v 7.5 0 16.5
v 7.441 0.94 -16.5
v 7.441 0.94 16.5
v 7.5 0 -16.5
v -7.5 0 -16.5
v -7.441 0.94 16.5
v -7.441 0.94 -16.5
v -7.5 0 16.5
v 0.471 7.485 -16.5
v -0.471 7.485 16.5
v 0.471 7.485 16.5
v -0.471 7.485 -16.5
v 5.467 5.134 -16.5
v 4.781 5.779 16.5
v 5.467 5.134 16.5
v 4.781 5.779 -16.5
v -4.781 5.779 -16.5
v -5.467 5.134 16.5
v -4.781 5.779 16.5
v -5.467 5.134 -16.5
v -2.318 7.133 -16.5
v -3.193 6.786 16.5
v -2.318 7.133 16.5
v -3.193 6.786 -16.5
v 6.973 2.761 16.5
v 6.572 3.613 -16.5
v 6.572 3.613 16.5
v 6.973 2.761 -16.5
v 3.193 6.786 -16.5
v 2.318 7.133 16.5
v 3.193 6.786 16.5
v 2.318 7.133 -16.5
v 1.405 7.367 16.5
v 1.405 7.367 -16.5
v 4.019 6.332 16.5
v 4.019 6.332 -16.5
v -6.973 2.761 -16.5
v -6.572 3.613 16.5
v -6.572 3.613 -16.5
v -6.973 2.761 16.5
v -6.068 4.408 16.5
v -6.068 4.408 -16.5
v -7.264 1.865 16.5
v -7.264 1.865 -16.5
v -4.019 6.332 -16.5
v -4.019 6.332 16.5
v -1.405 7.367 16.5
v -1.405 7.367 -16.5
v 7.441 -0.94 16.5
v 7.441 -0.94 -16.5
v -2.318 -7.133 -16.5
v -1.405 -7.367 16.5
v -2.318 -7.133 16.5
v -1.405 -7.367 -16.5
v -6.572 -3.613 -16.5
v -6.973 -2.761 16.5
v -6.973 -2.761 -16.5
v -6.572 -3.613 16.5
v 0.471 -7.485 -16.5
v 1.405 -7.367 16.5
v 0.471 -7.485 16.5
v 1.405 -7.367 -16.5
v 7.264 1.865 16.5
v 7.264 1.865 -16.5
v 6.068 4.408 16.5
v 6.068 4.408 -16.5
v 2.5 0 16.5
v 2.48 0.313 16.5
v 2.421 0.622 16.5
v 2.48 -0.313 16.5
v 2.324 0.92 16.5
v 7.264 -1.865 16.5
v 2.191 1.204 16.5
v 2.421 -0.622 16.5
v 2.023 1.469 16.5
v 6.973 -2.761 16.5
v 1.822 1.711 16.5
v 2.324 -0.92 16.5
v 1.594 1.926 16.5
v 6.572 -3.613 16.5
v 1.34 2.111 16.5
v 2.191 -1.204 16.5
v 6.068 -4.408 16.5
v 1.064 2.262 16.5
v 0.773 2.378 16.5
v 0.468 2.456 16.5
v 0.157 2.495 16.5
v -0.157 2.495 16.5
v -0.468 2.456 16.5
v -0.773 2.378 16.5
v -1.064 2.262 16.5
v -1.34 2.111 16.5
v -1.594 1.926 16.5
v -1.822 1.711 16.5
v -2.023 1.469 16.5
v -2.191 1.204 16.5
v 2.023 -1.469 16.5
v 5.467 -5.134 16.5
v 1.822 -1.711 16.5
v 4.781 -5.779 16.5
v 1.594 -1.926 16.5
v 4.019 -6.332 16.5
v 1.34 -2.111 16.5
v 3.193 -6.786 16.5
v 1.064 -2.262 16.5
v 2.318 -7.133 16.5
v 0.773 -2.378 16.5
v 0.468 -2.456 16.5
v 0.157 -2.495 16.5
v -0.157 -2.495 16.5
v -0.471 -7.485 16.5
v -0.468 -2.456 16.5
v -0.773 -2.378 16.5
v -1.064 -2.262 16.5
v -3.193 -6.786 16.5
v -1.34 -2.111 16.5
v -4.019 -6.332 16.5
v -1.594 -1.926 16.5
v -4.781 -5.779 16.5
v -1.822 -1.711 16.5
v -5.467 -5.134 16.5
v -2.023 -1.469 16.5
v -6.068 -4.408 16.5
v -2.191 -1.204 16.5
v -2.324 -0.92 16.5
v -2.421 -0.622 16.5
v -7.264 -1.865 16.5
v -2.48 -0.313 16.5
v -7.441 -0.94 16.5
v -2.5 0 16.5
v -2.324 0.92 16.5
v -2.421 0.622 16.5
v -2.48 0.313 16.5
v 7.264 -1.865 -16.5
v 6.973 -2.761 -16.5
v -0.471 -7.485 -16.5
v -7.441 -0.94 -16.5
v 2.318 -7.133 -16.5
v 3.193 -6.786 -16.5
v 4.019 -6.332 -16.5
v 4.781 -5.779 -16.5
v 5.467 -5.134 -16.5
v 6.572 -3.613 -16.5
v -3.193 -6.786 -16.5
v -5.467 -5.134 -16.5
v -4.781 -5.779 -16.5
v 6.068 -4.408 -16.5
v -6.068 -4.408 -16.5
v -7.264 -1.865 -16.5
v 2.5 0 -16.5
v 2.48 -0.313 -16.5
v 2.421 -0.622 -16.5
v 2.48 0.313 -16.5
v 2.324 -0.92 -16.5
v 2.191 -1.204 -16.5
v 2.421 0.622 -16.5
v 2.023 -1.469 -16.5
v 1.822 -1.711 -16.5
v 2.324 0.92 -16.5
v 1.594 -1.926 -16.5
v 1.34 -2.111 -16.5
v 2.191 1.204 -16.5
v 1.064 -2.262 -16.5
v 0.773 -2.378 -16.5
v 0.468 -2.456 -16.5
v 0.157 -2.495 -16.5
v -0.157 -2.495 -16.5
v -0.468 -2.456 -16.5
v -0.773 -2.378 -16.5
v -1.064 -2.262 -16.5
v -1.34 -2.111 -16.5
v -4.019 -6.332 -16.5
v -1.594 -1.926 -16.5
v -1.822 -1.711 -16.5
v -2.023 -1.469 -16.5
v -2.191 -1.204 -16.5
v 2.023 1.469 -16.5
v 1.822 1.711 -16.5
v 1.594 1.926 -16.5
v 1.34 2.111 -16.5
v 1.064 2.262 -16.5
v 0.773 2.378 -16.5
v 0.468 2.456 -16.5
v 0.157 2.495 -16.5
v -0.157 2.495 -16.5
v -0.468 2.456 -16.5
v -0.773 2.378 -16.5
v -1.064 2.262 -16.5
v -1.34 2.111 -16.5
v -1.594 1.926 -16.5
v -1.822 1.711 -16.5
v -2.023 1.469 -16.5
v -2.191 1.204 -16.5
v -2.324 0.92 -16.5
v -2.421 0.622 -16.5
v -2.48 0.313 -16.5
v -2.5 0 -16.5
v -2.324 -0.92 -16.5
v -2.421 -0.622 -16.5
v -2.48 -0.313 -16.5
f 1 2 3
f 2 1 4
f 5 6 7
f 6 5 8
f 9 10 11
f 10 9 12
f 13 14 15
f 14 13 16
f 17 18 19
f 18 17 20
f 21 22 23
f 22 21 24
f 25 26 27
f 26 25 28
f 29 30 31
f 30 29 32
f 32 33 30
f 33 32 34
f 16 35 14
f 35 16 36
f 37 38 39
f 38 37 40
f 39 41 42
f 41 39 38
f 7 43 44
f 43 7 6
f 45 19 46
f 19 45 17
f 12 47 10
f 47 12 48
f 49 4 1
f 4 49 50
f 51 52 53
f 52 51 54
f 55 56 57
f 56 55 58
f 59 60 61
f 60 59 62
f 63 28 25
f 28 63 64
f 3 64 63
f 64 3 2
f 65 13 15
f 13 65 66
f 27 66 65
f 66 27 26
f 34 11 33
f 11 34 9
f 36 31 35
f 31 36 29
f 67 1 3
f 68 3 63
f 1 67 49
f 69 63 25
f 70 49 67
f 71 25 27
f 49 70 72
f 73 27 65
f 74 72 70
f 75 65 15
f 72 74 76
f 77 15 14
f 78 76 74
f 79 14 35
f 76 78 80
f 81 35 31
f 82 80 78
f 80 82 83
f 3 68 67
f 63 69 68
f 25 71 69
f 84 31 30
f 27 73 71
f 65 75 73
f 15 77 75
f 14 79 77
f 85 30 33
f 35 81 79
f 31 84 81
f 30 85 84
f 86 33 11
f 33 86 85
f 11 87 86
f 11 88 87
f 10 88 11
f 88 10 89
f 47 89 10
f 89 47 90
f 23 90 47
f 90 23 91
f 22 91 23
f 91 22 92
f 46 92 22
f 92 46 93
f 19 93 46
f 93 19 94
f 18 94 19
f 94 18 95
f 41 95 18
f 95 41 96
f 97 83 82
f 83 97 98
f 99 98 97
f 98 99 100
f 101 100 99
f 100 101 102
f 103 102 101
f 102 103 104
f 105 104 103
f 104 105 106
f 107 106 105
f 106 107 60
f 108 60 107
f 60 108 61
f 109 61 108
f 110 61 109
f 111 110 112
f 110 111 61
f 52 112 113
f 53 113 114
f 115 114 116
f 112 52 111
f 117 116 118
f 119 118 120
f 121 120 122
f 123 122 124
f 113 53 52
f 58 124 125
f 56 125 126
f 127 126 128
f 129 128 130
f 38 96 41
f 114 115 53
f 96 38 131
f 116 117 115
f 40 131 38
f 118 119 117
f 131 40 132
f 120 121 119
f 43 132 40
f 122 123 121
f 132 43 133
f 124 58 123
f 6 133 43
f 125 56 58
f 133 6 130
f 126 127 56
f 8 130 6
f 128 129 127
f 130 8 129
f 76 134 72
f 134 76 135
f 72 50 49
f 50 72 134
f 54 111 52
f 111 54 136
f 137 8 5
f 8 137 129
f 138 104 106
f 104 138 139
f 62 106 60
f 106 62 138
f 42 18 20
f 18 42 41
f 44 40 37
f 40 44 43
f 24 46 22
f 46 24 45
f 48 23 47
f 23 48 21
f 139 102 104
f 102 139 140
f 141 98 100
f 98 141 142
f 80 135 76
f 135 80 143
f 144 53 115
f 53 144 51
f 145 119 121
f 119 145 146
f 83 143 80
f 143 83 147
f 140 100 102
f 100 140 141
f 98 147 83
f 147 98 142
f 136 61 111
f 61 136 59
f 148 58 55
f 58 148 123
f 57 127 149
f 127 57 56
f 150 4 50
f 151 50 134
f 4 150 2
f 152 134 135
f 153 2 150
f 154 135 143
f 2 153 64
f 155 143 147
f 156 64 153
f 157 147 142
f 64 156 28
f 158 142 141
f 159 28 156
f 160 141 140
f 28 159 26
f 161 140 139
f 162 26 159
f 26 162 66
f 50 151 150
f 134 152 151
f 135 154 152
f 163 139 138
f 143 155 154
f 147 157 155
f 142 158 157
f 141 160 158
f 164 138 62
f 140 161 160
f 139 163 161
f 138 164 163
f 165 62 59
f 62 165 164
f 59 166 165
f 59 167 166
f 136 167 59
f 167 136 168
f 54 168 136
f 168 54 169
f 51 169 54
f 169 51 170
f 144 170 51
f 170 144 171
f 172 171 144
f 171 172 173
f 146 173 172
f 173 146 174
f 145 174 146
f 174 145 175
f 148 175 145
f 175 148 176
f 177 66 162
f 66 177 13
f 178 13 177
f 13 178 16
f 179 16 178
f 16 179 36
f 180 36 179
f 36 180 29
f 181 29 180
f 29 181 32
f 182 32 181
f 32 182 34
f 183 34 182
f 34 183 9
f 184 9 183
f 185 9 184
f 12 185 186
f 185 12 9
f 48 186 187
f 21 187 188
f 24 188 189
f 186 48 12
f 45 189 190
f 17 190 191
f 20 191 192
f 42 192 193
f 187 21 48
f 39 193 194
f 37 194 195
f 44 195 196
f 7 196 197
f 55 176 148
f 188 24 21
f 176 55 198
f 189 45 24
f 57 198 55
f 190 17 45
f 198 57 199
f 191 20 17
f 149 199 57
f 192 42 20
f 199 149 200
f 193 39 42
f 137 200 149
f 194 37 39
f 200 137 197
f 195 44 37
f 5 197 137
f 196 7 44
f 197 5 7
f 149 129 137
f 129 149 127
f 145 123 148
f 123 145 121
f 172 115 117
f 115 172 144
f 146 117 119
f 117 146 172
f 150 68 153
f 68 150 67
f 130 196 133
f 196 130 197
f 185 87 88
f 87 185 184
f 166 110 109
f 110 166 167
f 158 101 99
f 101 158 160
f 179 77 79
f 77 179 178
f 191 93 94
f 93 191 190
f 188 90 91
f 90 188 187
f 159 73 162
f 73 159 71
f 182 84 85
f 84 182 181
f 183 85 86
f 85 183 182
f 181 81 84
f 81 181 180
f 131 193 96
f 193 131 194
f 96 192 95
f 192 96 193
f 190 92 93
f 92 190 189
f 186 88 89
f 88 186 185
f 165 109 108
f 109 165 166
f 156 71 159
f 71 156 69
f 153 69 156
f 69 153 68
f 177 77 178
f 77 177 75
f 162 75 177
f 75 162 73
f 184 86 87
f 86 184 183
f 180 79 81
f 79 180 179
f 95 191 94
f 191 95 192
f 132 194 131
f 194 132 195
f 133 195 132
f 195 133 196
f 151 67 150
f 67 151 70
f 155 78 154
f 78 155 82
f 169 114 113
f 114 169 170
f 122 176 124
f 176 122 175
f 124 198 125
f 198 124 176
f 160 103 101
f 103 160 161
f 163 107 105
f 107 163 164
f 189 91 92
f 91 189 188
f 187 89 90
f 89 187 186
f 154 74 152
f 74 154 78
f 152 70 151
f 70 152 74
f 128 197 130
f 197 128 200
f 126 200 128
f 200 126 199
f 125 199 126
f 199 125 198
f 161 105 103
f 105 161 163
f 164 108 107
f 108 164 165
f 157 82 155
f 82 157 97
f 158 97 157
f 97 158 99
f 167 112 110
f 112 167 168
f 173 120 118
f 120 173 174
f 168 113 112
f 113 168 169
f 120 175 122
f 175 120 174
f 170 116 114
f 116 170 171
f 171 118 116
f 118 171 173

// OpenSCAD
$fn = 50;


difference() {
	union() {
		translate(v = [0, 0, -16.5000000000]) {
			cylinder(h = 33, r = 7.5000000000);
		}
	}
	union() {
		translate(v = [0, 0, -100.0000000000]) {
			cylinder(h = 200, r = 2.5000000000);
		}
	}
}
